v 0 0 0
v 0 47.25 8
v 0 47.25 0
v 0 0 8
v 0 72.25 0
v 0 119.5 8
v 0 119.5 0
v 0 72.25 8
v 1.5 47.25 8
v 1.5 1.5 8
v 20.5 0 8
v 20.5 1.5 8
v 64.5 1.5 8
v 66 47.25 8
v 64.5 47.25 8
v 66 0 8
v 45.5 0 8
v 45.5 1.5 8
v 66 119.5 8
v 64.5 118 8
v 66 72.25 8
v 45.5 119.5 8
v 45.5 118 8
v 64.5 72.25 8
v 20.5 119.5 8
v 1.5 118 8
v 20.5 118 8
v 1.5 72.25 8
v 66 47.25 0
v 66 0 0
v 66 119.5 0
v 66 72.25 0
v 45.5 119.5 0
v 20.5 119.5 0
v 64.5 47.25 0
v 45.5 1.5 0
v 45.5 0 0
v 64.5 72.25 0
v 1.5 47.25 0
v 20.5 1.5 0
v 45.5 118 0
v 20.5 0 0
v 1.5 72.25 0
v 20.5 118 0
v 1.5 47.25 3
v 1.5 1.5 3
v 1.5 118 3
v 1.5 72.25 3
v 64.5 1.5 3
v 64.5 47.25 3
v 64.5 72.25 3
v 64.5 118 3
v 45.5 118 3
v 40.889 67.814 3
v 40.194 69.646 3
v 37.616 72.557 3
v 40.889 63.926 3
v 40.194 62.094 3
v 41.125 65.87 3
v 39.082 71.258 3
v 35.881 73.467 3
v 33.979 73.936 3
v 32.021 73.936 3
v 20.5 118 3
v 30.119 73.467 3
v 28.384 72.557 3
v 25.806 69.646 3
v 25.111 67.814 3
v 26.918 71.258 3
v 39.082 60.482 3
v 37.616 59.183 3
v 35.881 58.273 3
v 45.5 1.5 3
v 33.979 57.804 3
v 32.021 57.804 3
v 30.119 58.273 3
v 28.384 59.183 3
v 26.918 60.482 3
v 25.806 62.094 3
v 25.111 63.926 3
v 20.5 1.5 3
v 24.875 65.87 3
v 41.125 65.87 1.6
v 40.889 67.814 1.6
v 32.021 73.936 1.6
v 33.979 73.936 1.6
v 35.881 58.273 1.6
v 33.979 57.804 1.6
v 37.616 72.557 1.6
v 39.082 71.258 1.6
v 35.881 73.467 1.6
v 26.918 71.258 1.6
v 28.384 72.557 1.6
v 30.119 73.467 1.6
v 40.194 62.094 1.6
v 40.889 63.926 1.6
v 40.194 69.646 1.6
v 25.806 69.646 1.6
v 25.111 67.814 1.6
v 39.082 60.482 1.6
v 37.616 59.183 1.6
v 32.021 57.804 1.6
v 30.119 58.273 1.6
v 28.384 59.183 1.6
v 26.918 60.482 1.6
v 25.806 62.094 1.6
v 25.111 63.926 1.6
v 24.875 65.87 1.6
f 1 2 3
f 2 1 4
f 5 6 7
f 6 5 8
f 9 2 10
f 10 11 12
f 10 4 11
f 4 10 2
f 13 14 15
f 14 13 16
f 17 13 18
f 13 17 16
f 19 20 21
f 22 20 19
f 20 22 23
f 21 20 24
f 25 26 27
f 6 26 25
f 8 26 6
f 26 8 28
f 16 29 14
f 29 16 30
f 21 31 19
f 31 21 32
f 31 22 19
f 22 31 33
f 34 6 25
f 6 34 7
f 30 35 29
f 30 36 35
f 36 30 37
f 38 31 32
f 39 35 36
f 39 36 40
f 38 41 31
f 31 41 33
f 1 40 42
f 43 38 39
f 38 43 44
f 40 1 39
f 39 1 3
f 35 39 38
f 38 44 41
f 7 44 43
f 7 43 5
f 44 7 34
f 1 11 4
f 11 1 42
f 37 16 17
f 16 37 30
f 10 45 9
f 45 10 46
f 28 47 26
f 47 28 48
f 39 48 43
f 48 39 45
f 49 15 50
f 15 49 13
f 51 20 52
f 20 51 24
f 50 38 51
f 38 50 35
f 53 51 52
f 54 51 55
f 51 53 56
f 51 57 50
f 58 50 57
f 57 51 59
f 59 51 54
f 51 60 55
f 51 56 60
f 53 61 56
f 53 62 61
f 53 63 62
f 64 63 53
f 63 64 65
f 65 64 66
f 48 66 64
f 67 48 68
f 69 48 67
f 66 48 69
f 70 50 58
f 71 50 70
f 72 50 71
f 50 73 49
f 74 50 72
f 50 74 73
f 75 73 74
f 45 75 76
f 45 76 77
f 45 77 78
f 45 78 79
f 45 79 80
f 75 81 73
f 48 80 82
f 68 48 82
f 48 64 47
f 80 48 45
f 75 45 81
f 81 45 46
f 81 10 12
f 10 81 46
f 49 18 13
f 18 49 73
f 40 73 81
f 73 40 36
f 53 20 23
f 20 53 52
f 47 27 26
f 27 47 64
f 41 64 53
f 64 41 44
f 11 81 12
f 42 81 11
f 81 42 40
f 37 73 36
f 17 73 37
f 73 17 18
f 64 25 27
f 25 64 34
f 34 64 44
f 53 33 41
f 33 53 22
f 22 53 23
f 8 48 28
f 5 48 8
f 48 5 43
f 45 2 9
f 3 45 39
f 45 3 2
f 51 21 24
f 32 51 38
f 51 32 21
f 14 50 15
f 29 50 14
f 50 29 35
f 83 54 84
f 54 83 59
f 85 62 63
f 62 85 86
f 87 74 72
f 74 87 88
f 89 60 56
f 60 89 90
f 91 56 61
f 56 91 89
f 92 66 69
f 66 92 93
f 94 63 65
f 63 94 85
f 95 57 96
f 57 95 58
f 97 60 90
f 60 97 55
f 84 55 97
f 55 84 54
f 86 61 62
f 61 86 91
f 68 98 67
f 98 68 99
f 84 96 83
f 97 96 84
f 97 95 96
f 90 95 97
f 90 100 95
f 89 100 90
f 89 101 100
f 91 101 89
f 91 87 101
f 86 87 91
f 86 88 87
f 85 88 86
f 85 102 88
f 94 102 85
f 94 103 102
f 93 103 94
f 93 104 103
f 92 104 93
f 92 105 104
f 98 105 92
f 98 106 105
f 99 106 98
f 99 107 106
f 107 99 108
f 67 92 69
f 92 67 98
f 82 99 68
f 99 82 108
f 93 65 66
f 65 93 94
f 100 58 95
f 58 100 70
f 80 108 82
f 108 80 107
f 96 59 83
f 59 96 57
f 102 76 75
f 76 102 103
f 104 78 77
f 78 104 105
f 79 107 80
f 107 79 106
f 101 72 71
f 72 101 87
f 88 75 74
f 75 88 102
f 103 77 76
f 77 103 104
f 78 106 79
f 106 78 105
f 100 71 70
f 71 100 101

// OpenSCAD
length = 61.5;
width = 115;

height = 3;
rimHeight = 5;
rimThickness = 1.5;
notchLength = 25;
//Based on washer size:
washerDiameter = 16.25;
washerHeight = 1.4;
rimPadding = 1.5;
totalHeight = height + rimHeight;

totalLength = length + rimThickness * 2 + rimPadding;
totalWidth = width + rimThickness * 2 + rimPadding;

magnetOffset = 49.37;
pillarSideLength = 18;

magnetBaseInnerDiameter = 15.4;
spaceBetweenCircles = 2;
wallThickness = spaceBetweenCircles;
pillarSideOffset = .5;

difference() {
    cube([totalLength, totalWidth, height + rimHeight]);
    translate([rimThickness, rimThickness, height])
        cube([length + rimPadding, width + rimPadding, rimHeight]);
    
    translate([totalLength/2 - notchLength/2, 0, 0])
        cube([notchLength, rimThickness, totalHeight]);
    translate([totalLength/2 - notchLength/2, totalWidth-rimThickness, 0])
        cube([notchLength, rimThickness, totalHeight]);


    translate([0, totalWidth/2 - notchLength/2, 0])
        cube([rimThickness, notchLength, totalHeight]);
    translate([totalLength-rimThickness, totalWidth/2 - notchLength/2, 0])
        cube([rimThickness, notchLength, totalHeight]);
    
    translate([totalLength/2, magnetOffset + wallThickness * 2 + magnetBaseInnerDiameter/2 + (pillarSideLength -magnetBaseInnerDiameter )/2 + rimThickness + rimPadding + pillarSideOffset, height - washerHeight])
        cylinder(washerHeight, d=washerDiameter);
}
